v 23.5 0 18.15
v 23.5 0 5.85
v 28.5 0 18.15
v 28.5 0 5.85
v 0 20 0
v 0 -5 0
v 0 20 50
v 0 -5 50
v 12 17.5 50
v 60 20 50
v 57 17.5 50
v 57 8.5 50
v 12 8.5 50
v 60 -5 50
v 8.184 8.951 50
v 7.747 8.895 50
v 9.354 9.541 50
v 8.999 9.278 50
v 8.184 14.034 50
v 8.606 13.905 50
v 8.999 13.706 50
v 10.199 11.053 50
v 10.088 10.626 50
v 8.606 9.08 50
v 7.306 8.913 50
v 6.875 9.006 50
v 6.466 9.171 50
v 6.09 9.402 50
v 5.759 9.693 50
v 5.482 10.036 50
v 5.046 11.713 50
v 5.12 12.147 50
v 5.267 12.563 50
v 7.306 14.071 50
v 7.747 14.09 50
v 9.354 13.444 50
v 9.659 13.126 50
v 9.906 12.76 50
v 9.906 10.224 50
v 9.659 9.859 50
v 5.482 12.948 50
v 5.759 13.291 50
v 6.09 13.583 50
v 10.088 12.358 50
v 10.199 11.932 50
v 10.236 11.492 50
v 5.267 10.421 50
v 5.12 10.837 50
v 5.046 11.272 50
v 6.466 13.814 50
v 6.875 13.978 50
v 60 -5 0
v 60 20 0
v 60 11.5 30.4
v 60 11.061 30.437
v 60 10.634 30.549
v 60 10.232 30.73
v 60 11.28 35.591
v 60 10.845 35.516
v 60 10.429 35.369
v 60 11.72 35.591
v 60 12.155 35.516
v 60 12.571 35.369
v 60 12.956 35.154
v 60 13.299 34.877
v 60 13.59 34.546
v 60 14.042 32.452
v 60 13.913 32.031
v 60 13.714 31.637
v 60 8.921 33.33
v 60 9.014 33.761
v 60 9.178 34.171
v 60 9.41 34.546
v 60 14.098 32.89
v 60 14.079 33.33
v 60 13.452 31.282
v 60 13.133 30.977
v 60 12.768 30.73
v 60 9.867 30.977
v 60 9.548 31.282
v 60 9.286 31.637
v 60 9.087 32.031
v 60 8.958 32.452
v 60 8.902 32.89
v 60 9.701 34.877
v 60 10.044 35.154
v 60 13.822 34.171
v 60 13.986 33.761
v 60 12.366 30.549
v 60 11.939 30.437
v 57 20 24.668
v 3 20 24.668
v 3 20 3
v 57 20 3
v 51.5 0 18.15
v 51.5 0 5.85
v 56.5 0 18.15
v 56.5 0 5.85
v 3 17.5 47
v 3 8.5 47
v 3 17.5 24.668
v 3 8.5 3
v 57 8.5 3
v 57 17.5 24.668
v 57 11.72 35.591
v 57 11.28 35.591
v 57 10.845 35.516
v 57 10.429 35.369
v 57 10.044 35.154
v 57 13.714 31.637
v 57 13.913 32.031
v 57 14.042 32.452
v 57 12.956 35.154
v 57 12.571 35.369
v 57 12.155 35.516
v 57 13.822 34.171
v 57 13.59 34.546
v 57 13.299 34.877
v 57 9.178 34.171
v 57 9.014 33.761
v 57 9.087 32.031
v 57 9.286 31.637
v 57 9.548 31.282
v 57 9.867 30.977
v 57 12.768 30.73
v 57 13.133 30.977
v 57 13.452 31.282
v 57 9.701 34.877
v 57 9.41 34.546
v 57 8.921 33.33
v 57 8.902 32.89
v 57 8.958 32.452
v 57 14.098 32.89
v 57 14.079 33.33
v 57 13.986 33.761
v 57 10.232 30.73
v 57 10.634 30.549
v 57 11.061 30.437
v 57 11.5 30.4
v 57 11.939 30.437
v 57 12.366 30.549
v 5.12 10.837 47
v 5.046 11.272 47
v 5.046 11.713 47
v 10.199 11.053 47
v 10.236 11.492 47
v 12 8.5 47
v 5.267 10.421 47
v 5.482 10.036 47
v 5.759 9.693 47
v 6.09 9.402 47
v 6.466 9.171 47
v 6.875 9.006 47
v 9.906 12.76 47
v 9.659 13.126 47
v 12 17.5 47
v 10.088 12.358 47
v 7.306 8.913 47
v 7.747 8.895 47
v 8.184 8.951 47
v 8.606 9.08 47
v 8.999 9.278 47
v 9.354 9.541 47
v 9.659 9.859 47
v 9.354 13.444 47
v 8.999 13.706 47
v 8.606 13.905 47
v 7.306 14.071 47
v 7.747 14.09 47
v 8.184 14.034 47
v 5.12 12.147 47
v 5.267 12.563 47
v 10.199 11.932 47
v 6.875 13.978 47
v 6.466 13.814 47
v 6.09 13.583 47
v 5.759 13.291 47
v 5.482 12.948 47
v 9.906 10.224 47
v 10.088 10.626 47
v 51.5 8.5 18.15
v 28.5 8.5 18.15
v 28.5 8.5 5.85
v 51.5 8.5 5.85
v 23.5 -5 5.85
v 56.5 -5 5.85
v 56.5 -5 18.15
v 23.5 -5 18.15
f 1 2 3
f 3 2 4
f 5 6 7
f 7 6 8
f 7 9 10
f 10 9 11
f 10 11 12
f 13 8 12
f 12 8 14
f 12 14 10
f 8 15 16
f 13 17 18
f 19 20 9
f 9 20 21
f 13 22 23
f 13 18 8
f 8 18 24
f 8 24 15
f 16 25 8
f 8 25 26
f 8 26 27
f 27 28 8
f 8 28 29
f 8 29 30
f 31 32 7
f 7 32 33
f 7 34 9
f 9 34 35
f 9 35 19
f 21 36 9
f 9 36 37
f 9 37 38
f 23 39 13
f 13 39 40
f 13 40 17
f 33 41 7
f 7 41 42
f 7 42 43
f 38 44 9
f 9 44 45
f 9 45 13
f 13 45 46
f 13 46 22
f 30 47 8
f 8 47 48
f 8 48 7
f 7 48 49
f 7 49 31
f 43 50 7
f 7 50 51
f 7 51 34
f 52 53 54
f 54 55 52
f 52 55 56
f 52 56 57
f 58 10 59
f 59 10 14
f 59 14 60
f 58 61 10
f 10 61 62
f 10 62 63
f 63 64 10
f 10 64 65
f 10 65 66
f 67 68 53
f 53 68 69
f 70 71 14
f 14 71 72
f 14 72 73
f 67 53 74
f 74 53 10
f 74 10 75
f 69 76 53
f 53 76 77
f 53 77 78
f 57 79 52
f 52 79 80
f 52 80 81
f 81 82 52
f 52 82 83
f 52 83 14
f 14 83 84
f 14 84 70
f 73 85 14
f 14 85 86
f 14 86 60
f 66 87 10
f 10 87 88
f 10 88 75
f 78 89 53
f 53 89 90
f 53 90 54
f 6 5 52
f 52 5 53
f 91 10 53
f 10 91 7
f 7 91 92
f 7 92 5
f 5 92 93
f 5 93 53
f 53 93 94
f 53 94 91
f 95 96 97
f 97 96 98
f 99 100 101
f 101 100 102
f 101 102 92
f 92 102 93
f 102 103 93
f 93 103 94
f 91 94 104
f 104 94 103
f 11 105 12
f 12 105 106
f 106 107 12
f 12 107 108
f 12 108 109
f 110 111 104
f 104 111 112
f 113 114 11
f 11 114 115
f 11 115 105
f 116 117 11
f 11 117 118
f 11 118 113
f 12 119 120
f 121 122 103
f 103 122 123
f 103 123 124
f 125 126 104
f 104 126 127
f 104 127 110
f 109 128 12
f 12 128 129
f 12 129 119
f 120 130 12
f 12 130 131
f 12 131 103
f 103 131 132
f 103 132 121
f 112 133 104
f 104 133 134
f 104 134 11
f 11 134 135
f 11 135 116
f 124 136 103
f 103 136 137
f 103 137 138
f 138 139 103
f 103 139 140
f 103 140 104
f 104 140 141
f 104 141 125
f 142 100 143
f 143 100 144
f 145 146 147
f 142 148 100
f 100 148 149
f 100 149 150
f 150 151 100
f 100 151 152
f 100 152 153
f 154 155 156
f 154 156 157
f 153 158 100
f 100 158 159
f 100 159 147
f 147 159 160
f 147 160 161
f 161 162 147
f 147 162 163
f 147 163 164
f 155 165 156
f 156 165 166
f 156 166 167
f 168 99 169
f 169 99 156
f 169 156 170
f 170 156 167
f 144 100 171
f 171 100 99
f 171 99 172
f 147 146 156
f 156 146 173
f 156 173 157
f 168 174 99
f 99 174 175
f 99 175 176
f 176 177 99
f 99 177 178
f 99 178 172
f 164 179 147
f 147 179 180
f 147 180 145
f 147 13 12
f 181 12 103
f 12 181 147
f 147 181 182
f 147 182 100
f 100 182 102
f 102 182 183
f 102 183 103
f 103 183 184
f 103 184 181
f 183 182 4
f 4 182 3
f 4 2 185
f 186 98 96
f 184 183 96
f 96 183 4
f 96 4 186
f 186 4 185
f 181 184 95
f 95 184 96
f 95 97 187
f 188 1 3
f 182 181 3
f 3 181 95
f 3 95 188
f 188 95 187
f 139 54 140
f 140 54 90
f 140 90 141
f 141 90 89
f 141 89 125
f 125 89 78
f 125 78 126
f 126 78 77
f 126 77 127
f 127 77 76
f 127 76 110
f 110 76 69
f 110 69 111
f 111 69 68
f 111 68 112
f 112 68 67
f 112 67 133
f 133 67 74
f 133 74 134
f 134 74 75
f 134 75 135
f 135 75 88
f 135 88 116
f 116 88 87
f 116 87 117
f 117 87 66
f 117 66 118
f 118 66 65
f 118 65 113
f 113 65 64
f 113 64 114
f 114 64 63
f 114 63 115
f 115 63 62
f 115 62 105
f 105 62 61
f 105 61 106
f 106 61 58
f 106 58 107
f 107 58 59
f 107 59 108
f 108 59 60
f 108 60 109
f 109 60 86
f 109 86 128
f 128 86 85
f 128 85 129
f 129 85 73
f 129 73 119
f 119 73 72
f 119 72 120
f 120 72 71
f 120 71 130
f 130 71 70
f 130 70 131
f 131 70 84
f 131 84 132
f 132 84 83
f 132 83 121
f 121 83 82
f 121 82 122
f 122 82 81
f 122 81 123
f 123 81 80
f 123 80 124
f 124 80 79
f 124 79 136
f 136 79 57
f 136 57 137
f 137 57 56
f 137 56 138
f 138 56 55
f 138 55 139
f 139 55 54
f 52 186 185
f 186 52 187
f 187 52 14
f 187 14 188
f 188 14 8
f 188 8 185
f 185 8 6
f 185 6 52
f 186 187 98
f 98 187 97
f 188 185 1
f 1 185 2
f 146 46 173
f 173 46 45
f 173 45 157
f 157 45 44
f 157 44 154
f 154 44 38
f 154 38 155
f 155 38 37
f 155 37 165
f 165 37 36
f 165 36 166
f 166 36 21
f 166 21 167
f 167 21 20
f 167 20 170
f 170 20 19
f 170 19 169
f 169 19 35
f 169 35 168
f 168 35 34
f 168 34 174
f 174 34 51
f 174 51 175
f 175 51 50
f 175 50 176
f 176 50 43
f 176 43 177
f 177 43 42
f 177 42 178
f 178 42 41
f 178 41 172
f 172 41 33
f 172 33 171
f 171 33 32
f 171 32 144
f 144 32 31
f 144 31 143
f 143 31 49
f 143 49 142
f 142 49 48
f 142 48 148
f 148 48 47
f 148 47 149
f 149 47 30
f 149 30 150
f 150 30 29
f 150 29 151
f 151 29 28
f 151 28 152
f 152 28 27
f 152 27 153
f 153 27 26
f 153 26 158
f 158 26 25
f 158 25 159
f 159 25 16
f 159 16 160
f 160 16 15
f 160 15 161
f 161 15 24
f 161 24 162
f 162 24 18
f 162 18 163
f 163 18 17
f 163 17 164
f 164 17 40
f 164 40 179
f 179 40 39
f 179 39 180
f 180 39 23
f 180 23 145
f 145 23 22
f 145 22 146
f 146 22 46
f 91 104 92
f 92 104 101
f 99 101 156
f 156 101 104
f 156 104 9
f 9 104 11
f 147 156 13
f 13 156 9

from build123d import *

# Parameters (mm, degrees)
ESQUISSE1_W             = 60
ESQUISSE1_H             = 50
BOSS_EXTRU_1_DEPTH      = 20
ESQUISSE2_W             = 54
ESQUISSE2_H             = 44
ENL_V_MAT_EXTRU_1_DEPTH = 11.5
ENL_V_MAT_EXTRU_2_REACH = 80.945
ESQUISSE3_W             = 23
ESQUISSE3_H             = 12.3
ESQUISSE4_R             = 2.6
ENL_V_MAT_EXTRU_3_DEPTH = 10
ESQUISSE5_W             = 60
ESQUISSE5_H             = 50
ESQUISSE5_W_2           = 33
ESQUISSE5_H_2           = 12.3
BOSS_EXTRU_2_DEPTH      = 5
ESQUISSE6_R             = 2.6
ENL_V_MAT_EXTRU_4_DEPTH = 10
ESQUISSE8_W             = 60
ESQUISSE8_H             = 25.332095198
BOSS_EXTRU_3_DEPTH      = 2.5
ESQUISSE9_W             = 45
ESQUISSE9_H             = 9
ENL_V_MAT_EXTRU_6_DEPTH = 3


with BuildPart() as part:
    # Esquisse1 → Boss.-Extru.1 (new body)
    with BuildSketch(Plane(origin=(0, 0, 0), x_dir=(1, 0, 0), z_dir=(0, 1, 0))):
        with Locations((30, -25)):
            Rectangle(ESQUISSE1_W, ESQUISSE1_H)
    extrude(amount=BOSS_EXTRU_1_DEPTH)

    # Esquisse2 → Enlèv. mat.-Extru.1 (cut)
    with BuildSketch(Plane(origin=(0, 20, 0), x_dir=(1, 0, 0), z_dir=(0, 1, 0))):
        with Locations((30, -25)):
            Rectangle(ESQUISSE2_W, ESQUISSE2_H)
    extrude(amount=-ENL_V_MAT_EXTRU_1_DEPTH, mode=Mode.SUBTRACT)

    # Esquisse3 → Enlèv. mat.-Extru.2 (cut, up to next)
    with BuildSketch(Plane(origin=(0, 8.5, 0), x_dir=(1, 0, 0), z_dir=(0, 1, 0)), mode=Mode.PRIVATE) as enl_v_mat_extru_2_sk1:
        with Locations((40, -12)):
            Rectangle(ESQUISSE3_W, ESQUISSE3_H)
    enl_v_mat_extru_2_tool1 = extrude(enl_v_mat_extru_2_sk1.sketch, amount=-ENL_V_MAT_EXTRU_2_REACH, mode=Mode.PRIVATE) & part.part
    add(enl_v_mat_extru_2_tool1.solids().sort_by_distance((40, 8.5, 12))[0], mode=Mode.SUBTRACT)

    # Esquisse4 → Enlèv. mat.-Extru.3 (cut)
    with BuildSketch(Plane(origin=(60, 0, 0), x_dir=(0, 0, -1), z_dir=(1, 0, 0))):
        with Locations((-33, 11.5)):
            Circle(ESQUISSE4_R)
    extrude(amount=-ENL_V_MAT_EXTRU_3_DEPTH, mode=Mode.SUBTRACT)

    # Esquisse5 → Boss.-Extru.2 (add)
    with BuildSketch(Plane.XZ):
        with Locations((30, 25)):
            Rectangle(ESQUISSE5_W, ESQUISSE5_H)
        with Locations((40, 12)):
            Rectangle(ESQUISSE5_W_2, ESQUISSE5_H_2, mode=Mode.SUBTRACT)
    extrude(amount=BOSS_EXTRU_2_DEPTH)

    # Esquisse6 → Enlèv. mat.-Extru.4 (cut)
    with BuildSketch(Plane.XY.offset(50)):
        with Locations((7.636251233, 11.492300727)):
            Circle(ESQUISSE6_R)
    extrude(amount=-ENL_V_MAT_EXTRU_4_DEPTH, mode=Mode.SUBTRACT)

    # Esquisse8 → Boss.-Extru.3 (add)
    with BuildSketch(Plane(origin=(0, 20, 0), x_dir=(1, 0, 0), z_dir=(0, 1, 0))):
        with Locations((30, -37.333952401)):
            Rectangle(ESQUISSE8_W, ESQUISSE8_H)
    extrude(amount=-BOSS_EXTRU_3_DEPTH)

    # Esquisse9 → Enlèv. mat.-Extru.6 (cut)
    with BuildSketch(Plane.XY.offset(50)):
        with Locations((34.5, 13)):
            Rectangle(ESQUISSE9_W, ESQUISSE9_H)
    extrude(amount=-ENL_V_MAT_EXTRU_6_DEPTH, mode=Mode.SUBTRACT)


solid = part.part
